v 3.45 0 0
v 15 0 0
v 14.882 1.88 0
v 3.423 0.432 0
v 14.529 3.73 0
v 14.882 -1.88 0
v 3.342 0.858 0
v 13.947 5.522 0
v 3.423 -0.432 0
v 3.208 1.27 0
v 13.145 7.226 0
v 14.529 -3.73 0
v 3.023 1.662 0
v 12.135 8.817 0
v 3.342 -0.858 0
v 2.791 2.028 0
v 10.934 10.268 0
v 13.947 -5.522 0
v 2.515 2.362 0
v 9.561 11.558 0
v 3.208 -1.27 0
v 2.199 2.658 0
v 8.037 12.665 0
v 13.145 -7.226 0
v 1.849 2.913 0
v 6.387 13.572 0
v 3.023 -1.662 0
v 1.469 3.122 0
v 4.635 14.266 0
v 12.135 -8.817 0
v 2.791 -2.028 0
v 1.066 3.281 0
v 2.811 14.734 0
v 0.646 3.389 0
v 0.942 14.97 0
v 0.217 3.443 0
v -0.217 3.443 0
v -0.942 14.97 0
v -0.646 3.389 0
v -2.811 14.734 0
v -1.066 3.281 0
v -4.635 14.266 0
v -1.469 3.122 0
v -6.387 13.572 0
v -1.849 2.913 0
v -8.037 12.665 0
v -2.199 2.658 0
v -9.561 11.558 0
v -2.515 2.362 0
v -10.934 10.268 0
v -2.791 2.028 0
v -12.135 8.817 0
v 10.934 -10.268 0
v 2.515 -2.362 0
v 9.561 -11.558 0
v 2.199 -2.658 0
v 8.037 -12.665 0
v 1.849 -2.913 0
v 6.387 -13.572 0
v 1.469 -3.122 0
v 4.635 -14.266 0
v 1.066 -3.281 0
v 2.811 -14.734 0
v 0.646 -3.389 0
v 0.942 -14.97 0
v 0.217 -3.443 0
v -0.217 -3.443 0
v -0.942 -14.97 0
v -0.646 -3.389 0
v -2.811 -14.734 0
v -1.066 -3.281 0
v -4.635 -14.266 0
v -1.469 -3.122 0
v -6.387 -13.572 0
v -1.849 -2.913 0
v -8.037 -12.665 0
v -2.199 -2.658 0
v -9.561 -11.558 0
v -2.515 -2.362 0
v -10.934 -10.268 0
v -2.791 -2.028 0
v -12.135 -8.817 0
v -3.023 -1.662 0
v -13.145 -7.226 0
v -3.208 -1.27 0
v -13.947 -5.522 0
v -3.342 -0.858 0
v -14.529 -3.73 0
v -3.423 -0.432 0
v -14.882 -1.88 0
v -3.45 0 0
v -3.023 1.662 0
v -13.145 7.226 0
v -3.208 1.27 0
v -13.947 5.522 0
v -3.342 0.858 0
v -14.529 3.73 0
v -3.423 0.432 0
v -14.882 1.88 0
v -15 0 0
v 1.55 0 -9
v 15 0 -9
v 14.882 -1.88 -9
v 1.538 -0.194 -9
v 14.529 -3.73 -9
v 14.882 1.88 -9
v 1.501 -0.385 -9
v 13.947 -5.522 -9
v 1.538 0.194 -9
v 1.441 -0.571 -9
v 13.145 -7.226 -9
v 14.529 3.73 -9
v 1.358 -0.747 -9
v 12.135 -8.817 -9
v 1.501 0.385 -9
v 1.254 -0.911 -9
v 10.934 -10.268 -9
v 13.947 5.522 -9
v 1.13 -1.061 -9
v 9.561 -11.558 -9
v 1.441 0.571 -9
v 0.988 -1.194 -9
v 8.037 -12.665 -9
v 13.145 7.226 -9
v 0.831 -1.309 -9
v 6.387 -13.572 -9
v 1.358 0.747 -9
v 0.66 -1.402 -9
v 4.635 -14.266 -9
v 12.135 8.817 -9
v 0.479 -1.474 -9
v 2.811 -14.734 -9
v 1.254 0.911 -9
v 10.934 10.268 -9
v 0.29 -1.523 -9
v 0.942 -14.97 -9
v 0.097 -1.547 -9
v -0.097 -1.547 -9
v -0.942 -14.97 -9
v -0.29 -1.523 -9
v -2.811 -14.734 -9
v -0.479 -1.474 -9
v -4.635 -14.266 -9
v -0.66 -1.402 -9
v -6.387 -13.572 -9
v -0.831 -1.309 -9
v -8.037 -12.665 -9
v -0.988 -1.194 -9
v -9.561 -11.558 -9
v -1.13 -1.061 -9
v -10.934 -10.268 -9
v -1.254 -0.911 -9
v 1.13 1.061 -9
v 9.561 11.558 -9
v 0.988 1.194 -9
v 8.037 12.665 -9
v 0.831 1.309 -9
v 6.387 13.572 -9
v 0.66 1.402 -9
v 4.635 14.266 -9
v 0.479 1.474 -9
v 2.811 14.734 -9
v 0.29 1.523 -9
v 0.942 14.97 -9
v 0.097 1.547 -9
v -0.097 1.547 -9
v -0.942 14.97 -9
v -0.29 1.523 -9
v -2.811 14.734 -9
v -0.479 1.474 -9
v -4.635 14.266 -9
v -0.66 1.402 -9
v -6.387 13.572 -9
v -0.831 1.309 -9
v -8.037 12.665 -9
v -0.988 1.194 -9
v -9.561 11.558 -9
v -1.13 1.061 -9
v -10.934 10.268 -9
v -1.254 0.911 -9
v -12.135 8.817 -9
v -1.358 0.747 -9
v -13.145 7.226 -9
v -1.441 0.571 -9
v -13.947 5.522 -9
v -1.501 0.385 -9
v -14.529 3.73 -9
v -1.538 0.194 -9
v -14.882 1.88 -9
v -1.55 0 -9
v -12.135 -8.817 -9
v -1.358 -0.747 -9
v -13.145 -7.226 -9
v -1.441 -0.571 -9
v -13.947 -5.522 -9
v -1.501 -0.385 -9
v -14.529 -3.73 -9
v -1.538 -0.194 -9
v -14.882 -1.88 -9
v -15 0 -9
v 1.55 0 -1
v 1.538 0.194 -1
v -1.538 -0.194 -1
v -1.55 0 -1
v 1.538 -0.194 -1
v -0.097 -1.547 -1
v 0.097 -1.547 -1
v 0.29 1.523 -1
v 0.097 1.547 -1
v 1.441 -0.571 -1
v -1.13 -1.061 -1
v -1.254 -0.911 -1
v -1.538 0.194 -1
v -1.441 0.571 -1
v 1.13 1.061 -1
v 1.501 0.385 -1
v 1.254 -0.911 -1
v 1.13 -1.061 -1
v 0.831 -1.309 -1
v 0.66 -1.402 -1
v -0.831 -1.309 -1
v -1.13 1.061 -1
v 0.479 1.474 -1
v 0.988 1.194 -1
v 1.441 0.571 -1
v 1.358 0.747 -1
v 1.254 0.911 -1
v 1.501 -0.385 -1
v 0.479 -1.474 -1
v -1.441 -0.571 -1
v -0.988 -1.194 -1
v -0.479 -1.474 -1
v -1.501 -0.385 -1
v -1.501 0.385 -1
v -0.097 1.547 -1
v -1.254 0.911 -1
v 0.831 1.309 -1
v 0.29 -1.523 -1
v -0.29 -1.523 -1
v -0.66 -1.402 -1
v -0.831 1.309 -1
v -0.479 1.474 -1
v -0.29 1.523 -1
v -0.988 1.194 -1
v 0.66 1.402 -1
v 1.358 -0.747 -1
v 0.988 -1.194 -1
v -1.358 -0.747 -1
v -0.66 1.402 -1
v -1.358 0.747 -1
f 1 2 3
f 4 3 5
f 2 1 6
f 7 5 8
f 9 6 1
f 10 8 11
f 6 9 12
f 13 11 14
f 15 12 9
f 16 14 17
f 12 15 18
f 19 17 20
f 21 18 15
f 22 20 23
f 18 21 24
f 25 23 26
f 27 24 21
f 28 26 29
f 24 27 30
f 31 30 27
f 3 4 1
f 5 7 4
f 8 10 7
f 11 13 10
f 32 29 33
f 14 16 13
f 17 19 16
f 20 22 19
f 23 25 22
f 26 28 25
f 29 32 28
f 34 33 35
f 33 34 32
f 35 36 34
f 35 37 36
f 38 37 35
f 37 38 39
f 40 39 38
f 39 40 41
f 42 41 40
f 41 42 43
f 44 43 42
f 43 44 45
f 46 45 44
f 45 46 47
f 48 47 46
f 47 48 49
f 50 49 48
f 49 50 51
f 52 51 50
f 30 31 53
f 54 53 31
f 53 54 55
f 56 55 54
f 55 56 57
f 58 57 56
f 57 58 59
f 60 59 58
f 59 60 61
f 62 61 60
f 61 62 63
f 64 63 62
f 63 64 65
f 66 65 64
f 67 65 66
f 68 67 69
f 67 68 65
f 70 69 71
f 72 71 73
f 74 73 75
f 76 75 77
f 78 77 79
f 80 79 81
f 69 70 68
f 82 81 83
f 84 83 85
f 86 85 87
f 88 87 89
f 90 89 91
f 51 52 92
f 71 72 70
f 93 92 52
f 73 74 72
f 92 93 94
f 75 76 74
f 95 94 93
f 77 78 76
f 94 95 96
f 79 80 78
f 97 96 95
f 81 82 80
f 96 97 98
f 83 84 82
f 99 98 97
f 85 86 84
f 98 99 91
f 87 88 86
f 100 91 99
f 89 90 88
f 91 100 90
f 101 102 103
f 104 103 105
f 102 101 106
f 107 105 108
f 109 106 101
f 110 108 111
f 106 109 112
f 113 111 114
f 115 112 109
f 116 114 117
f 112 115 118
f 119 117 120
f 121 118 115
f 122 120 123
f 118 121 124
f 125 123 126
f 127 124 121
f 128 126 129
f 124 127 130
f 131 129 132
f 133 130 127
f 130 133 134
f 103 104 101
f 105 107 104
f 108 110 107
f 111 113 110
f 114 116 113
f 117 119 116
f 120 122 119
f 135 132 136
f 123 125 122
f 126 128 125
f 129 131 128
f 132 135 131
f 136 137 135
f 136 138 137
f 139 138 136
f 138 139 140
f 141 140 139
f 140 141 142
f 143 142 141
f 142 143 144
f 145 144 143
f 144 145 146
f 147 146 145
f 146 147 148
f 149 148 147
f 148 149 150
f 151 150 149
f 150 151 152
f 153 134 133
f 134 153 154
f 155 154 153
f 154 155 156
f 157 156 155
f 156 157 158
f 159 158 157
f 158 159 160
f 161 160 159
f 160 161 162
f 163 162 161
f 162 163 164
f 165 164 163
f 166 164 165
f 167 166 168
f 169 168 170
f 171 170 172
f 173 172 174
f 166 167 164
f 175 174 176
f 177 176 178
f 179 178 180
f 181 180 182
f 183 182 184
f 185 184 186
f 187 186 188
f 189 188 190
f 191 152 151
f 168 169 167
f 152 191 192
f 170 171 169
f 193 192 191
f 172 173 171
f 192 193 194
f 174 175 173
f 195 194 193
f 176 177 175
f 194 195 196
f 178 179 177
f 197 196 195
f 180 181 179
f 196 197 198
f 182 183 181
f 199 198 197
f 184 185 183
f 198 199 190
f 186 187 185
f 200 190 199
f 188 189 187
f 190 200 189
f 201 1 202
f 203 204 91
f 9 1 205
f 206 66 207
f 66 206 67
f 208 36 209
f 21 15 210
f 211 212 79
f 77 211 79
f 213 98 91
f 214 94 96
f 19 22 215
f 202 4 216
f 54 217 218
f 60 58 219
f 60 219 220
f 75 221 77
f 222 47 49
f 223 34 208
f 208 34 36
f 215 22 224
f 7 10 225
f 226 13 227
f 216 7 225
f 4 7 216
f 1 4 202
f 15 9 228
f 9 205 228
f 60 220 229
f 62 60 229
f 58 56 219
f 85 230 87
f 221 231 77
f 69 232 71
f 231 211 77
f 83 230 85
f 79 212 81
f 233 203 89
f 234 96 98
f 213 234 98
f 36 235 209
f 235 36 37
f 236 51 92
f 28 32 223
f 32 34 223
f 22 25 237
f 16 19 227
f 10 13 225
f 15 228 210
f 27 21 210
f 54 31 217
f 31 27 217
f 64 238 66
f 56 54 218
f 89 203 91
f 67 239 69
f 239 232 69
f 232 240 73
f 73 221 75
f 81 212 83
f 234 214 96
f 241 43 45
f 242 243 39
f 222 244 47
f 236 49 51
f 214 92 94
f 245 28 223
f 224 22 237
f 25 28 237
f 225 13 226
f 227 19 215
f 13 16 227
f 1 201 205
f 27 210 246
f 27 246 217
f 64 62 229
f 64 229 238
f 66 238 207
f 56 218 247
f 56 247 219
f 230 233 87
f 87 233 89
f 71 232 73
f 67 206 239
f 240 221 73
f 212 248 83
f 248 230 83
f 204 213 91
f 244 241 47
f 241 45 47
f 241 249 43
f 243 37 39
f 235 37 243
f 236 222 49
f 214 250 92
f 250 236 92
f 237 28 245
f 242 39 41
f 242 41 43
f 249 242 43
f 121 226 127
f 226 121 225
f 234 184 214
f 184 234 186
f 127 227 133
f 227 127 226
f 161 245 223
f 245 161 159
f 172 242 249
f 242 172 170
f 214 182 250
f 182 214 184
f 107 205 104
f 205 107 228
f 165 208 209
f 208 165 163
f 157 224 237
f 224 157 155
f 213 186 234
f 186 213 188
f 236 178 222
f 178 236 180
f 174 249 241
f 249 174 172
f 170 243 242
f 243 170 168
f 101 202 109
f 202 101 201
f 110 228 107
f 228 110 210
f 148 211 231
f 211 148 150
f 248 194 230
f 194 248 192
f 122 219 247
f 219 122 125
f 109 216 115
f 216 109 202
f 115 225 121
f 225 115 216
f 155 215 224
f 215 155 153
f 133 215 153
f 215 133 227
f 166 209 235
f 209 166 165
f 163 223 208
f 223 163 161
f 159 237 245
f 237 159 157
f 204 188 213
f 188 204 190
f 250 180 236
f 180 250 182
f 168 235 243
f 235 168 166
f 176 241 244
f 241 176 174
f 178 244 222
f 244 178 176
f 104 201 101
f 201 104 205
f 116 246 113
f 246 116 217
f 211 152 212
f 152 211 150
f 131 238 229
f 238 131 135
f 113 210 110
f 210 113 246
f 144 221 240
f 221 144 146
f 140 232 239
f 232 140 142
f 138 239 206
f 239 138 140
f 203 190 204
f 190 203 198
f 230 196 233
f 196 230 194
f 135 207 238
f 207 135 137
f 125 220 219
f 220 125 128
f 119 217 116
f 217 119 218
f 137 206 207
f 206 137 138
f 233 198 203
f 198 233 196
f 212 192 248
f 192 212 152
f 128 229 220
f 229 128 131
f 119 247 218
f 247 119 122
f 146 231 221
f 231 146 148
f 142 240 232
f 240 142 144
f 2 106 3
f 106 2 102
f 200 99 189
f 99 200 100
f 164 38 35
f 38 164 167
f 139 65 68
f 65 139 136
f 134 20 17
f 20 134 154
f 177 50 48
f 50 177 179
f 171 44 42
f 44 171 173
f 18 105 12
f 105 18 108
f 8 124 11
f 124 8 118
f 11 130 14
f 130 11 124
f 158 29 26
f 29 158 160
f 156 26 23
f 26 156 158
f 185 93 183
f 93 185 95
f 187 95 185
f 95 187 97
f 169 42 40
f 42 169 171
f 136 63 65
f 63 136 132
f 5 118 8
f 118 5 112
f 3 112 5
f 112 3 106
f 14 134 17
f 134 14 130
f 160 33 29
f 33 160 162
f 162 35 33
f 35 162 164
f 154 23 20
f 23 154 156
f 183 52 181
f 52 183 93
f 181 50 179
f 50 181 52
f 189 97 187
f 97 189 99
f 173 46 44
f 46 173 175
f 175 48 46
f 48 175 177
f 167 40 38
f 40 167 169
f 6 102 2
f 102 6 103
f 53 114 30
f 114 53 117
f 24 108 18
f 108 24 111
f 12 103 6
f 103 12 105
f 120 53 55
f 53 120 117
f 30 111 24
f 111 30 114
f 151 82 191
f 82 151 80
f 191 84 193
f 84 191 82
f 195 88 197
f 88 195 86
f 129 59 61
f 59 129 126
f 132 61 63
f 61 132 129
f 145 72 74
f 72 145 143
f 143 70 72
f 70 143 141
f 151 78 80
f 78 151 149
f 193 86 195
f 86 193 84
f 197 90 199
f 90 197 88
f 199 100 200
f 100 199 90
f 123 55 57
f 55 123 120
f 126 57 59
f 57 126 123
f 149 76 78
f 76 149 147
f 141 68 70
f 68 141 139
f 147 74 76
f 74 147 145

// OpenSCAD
$fn = 50;


difference() {
	union() {
		translate(v = [0, 0, -9.0000000000]) {
			cylinder(h = 9, r = 15.0000000000);
		}
	}
	union() {
		translate(v = [0, 0, 0]) {
			rotate(a = [0, 0, 0]) {
				difference() {
					union() {
						translate(v = [0, 0, -9.0000000000]) {
							cylinder(h = 9, r = 1.2500000000);
						}
						translate(v = [0, 0, -1.0000000000]) {
							cylinder(h = 1.0000000000, r1 = 1.5500000000, r2 = 3.4500000000);
						}
						translate(v = [0, 0, -9.0000000000]) {
							cylinder(h = 9, r = 1.5500000000);
						}
						translate(v = [0, 0, -9.0000000000]) {
							cylinder(h = 9, r = 1.2500000000);
						}
					}
					union();
				}
			}
		}
	}
}
